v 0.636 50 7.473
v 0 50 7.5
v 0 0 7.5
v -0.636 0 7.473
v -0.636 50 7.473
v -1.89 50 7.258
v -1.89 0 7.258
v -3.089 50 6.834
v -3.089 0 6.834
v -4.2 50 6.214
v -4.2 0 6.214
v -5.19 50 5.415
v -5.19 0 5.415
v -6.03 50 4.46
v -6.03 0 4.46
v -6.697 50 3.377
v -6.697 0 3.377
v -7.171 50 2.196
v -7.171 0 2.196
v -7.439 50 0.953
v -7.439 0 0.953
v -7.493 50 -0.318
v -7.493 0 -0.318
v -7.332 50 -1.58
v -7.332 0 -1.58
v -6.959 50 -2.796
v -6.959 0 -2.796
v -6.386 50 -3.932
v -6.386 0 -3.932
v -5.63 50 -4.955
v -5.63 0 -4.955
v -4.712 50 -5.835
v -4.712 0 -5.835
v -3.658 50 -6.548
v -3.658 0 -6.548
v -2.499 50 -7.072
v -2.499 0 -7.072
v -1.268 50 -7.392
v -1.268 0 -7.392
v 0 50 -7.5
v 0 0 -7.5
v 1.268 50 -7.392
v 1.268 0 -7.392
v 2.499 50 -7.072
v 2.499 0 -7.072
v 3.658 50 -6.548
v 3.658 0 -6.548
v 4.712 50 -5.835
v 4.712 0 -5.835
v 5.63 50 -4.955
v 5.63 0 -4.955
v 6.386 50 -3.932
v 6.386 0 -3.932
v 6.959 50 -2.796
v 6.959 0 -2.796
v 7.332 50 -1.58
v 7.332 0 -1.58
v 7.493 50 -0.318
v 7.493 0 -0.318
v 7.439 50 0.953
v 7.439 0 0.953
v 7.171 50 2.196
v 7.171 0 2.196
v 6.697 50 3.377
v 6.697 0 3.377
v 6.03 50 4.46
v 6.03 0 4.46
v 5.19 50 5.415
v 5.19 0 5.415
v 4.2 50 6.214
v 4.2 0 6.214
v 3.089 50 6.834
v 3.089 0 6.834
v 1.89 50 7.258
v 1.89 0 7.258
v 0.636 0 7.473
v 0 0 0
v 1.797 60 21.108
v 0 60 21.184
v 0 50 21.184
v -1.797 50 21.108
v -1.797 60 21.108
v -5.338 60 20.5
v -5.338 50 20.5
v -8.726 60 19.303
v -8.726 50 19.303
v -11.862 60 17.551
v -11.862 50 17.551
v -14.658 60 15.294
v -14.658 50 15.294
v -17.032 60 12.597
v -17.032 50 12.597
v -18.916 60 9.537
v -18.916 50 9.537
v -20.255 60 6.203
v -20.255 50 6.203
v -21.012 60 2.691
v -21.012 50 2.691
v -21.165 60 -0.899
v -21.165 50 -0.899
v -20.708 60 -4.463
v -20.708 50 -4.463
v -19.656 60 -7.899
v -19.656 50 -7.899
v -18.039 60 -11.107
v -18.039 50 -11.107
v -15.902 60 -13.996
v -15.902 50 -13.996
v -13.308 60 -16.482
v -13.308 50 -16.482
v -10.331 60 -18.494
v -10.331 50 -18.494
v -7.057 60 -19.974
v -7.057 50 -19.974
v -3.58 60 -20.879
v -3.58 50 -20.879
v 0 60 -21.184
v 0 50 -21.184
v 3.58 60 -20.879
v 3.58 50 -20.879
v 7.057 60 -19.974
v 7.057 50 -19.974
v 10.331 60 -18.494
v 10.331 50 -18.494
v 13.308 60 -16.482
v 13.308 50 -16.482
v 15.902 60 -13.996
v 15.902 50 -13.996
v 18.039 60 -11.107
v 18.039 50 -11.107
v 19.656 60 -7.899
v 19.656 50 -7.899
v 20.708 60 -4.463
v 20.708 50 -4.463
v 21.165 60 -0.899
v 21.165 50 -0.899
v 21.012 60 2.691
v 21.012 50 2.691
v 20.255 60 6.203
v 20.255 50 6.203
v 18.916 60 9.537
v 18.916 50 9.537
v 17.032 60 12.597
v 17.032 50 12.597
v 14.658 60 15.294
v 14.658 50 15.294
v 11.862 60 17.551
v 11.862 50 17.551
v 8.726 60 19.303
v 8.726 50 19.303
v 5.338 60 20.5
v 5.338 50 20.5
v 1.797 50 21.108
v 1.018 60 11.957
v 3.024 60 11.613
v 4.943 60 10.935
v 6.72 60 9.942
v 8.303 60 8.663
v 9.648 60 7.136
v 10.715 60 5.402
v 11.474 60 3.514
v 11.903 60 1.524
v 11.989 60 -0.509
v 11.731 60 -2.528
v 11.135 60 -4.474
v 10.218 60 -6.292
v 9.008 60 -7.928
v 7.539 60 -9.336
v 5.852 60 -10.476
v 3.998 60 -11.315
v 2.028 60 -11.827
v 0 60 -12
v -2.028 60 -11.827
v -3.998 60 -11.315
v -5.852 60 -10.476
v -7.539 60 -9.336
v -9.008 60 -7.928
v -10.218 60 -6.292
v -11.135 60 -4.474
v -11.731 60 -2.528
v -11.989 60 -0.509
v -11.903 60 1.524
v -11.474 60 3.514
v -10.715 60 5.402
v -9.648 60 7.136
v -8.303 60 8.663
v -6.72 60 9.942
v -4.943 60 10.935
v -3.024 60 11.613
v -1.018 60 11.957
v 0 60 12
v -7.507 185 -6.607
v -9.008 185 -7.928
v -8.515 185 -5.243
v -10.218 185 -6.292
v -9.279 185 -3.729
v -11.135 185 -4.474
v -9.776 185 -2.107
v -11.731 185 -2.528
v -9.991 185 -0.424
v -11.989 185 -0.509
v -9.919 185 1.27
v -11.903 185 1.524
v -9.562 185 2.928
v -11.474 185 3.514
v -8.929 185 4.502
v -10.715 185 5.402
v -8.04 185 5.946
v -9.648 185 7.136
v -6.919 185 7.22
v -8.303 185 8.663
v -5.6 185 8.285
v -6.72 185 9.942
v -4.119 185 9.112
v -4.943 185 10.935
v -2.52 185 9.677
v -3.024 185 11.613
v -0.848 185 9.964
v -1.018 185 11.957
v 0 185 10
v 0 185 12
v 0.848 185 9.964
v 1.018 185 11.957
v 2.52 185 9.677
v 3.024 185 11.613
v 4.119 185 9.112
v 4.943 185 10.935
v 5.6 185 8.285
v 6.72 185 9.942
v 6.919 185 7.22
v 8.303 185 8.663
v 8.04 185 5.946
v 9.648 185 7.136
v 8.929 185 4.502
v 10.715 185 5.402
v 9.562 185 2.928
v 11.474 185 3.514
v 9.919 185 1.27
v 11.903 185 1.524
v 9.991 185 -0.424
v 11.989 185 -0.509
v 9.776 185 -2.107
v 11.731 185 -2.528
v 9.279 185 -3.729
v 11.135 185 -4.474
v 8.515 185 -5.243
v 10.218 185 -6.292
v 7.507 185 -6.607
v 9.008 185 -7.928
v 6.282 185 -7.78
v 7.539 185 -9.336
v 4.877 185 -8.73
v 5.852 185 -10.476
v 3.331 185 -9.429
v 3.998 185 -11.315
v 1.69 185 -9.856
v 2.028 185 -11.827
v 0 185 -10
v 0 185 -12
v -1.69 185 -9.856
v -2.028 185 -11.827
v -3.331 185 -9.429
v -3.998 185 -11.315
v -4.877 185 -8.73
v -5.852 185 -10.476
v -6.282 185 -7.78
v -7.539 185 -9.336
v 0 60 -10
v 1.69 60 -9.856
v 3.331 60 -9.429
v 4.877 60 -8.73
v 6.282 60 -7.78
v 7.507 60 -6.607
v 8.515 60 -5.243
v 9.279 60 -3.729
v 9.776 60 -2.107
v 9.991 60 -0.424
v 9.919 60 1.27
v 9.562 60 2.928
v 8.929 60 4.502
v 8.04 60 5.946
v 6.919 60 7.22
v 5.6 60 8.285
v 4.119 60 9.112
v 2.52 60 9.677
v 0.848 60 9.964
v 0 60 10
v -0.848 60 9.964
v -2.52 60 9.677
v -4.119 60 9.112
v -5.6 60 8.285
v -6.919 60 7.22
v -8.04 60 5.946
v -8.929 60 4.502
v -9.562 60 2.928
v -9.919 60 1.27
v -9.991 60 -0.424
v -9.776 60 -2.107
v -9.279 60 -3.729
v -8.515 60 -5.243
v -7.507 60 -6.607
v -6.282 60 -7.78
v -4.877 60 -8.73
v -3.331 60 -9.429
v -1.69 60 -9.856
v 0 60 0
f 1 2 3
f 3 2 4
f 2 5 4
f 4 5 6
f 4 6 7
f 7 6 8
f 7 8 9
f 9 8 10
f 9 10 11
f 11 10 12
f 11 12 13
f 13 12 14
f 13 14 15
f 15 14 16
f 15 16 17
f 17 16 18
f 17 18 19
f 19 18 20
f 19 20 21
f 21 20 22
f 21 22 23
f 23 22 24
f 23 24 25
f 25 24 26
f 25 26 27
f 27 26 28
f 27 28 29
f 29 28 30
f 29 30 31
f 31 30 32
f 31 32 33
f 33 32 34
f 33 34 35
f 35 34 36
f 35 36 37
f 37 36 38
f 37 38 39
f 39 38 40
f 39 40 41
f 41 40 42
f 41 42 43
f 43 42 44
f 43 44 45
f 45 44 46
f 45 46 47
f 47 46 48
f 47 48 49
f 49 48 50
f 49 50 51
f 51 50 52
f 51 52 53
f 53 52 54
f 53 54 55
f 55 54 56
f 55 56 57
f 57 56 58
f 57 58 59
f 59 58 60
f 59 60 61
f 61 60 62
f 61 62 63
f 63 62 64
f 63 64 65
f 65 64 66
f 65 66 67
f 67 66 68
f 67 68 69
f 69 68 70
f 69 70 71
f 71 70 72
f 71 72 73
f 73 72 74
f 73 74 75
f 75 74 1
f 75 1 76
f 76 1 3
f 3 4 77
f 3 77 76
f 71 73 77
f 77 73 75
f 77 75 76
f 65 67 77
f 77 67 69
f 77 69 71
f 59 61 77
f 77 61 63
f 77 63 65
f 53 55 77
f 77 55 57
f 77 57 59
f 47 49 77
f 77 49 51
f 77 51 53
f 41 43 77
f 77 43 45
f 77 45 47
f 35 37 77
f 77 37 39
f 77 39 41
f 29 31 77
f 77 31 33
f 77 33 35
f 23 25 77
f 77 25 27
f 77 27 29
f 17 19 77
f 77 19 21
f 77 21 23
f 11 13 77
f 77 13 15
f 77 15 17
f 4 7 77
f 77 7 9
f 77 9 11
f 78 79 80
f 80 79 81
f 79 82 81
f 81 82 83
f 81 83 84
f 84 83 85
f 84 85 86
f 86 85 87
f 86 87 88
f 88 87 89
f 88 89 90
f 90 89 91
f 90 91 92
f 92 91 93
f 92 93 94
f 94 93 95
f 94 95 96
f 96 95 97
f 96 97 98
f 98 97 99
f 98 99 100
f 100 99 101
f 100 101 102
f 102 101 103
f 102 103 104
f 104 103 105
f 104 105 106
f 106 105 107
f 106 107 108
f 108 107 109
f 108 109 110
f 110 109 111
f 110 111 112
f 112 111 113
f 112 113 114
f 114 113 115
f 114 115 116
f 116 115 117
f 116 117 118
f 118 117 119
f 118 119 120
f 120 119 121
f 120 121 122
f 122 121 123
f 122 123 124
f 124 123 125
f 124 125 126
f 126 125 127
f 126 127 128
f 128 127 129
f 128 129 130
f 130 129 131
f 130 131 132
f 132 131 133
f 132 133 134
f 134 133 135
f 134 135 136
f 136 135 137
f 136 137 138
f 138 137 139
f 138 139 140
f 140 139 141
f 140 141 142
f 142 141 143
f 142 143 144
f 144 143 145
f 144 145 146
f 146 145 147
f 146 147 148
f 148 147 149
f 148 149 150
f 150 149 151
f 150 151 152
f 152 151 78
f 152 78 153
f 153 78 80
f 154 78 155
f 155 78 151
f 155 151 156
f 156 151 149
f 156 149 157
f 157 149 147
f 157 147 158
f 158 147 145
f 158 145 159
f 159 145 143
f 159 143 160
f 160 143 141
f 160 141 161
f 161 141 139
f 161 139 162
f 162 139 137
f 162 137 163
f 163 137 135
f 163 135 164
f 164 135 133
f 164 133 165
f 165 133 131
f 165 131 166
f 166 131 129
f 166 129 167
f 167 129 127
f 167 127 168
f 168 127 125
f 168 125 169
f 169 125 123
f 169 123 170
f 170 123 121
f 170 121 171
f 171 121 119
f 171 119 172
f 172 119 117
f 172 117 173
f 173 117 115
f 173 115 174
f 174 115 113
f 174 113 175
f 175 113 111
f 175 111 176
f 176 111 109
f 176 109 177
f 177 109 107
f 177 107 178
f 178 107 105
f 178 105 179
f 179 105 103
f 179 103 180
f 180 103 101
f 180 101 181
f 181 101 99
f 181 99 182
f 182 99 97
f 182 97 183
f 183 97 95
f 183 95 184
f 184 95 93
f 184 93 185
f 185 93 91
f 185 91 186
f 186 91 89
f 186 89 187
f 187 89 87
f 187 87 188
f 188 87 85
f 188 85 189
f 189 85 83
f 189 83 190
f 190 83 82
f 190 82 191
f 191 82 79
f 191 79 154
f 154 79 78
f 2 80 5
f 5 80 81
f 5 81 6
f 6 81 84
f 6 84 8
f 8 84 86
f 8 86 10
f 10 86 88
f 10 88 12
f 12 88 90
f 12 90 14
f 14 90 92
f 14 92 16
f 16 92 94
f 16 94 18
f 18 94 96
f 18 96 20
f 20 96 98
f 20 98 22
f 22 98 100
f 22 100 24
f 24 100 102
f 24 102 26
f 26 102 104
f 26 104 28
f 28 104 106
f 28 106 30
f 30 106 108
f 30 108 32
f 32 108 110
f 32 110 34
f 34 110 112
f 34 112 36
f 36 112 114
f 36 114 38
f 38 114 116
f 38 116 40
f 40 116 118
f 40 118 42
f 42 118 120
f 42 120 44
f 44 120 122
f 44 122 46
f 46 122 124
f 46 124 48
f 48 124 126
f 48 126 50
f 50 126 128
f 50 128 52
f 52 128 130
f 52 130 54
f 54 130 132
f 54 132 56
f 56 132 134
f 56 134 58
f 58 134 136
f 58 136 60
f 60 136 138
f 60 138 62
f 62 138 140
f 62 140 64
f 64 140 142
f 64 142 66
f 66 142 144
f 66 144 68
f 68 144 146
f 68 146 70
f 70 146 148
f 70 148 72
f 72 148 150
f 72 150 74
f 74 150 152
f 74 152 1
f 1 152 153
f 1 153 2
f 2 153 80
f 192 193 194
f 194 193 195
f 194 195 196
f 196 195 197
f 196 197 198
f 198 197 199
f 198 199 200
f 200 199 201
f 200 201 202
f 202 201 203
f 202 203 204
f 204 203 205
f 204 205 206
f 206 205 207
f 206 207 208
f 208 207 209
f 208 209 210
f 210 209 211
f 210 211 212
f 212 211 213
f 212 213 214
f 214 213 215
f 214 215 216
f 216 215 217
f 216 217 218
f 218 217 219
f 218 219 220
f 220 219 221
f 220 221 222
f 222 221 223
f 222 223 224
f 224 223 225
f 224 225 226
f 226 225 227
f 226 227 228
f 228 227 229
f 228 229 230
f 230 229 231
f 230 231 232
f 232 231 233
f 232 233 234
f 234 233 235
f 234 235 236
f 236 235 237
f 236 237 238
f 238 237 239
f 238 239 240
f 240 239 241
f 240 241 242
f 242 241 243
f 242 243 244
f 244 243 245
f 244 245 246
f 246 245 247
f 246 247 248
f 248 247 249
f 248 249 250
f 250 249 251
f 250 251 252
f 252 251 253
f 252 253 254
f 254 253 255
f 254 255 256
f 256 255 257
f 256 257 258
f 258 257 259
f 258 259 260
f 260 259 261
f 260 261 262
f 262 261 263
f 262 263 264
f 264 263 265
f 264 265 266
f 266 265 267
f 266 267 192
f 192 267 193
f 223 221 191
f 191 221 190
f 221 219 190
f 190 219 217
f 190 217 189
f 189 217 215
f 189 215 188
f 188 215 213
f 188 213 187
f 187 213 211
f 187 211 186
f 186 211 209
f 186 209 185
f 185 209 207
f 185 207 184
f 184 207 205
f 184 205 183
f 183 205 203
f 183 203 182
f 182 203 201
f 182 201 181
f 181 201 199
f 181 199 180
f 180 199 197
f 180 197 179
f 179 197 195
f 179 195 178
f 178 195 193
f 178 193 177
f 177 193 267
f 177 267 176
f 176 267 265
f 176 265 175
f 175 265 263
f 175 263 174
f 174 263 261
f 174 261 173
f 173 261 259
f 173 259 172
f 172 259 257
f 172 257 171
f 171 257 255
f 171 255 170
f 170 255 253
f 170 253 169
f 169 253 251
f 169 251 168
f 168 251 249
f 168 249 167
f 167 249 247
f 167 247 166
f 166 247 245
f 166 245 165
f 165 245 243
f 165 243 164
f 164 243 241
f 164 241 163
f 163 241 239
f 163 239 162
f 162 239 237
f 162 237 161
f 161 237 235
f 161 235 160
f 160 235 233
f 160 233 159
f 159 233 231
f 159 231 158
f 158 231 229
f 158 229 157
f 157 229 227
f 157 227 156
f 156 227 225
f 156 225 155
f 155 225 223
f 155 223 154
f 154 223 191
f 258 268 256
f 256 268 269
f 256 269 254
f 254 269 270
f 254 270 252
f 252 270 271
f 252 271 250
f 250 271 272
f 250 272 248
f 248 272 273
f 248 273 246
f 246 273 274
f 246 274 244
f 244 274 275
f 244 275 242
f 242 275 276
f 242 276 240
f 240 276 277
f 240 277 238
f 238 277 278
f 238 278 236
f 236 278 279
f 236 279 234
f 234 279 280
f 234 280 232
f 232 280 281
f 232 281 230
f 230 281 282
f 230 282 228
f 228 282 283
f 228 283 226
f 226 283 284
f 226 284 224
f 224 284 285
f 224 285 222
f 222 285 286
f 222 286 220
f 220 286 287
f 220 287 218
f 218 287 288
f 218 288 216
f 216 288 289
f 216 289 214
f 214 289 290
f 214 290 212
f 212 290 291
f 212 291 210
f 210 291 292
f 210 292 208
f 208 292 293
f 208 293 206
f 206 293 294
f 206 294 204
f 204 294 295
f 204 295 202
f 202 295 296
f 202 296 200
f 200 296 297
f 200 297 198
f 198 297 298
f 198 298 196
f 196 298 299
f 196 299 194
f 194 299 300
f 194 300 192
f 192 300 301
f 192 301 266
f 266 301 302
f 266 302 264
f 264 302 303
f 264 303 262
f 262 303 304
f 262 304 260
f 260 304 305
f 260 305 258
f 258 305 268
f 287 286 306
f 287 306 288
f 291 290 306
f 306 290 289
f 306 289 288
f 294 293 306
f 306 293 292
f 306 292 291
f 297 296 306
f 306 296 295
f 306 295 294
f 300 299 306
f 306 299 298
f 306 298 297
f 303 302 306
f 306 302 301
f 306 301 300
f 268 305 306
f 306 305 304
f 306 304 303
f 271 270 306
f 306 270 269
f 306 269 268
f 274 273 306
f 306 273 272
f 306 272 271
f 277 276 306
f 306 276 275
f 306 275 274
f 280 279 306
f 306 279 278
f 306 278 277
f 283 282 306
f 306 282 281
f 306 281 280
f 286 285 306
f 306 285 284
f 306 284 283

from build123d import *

# Parameters (mm, degrees)
SKETCH1_R           = 7.5
BOSS_EXTRUDE1_DEPTH = 50
SKETCH2_R           = 21.183921509
BOSS_EXTRUDE2_DEPTH = 10
SKETCH3_R           = 12
SKETCH3_R_2         = 10
BOSS_EXTRUDE3_DEPTH = 125


with BuildPart() as part:
    # Sketch1 → Boss-Extrude1 (new body)
    with BuildSketch(Plane(origin=(0, 0, 0), x_dir=(1, 0, 0), z_dir=(0, 1, 0))):
        with Locations(Location((0, 0, 0), (0, 0, 270))):
            Circle(SKETCH1_R)
    extrude(amount=BOSS_EXTRUDE1_DEPTH)

    # Sketch2 → Boss-Extrude2 (add)
    with BuildSketch(Plane(origin=(0, 50, 0), x_dir=(1, 0, 0), z_dir=(0, 1, 0))):
        with Locations(Location((0, 0, 0), (0, 0, 270))):
            Circle(SKETCH2_R)
    extrude(amount=BOSS_EXTRUDE2_DEPTH)

    # Sketch3 → Boss-Extrude3 (add)
    with BuildSketch(Plane(origin=(0, 60, 0), x_dir=(1, 0, 0), z_dir=(0, 1, 0))):
        with Locations(Location((0, 0, 0), (0, 0, 270))):
            Circle(SKETCH3_R)
        with Locations(Location((0, 0, 0), (0, 0, 270))):
            Circle(SKETCH3_R_2, mode=Mode.SUBTRACT)
    extrude(amount=BOSS_EXTRUDE3_DEPTH)


solid = part.part
